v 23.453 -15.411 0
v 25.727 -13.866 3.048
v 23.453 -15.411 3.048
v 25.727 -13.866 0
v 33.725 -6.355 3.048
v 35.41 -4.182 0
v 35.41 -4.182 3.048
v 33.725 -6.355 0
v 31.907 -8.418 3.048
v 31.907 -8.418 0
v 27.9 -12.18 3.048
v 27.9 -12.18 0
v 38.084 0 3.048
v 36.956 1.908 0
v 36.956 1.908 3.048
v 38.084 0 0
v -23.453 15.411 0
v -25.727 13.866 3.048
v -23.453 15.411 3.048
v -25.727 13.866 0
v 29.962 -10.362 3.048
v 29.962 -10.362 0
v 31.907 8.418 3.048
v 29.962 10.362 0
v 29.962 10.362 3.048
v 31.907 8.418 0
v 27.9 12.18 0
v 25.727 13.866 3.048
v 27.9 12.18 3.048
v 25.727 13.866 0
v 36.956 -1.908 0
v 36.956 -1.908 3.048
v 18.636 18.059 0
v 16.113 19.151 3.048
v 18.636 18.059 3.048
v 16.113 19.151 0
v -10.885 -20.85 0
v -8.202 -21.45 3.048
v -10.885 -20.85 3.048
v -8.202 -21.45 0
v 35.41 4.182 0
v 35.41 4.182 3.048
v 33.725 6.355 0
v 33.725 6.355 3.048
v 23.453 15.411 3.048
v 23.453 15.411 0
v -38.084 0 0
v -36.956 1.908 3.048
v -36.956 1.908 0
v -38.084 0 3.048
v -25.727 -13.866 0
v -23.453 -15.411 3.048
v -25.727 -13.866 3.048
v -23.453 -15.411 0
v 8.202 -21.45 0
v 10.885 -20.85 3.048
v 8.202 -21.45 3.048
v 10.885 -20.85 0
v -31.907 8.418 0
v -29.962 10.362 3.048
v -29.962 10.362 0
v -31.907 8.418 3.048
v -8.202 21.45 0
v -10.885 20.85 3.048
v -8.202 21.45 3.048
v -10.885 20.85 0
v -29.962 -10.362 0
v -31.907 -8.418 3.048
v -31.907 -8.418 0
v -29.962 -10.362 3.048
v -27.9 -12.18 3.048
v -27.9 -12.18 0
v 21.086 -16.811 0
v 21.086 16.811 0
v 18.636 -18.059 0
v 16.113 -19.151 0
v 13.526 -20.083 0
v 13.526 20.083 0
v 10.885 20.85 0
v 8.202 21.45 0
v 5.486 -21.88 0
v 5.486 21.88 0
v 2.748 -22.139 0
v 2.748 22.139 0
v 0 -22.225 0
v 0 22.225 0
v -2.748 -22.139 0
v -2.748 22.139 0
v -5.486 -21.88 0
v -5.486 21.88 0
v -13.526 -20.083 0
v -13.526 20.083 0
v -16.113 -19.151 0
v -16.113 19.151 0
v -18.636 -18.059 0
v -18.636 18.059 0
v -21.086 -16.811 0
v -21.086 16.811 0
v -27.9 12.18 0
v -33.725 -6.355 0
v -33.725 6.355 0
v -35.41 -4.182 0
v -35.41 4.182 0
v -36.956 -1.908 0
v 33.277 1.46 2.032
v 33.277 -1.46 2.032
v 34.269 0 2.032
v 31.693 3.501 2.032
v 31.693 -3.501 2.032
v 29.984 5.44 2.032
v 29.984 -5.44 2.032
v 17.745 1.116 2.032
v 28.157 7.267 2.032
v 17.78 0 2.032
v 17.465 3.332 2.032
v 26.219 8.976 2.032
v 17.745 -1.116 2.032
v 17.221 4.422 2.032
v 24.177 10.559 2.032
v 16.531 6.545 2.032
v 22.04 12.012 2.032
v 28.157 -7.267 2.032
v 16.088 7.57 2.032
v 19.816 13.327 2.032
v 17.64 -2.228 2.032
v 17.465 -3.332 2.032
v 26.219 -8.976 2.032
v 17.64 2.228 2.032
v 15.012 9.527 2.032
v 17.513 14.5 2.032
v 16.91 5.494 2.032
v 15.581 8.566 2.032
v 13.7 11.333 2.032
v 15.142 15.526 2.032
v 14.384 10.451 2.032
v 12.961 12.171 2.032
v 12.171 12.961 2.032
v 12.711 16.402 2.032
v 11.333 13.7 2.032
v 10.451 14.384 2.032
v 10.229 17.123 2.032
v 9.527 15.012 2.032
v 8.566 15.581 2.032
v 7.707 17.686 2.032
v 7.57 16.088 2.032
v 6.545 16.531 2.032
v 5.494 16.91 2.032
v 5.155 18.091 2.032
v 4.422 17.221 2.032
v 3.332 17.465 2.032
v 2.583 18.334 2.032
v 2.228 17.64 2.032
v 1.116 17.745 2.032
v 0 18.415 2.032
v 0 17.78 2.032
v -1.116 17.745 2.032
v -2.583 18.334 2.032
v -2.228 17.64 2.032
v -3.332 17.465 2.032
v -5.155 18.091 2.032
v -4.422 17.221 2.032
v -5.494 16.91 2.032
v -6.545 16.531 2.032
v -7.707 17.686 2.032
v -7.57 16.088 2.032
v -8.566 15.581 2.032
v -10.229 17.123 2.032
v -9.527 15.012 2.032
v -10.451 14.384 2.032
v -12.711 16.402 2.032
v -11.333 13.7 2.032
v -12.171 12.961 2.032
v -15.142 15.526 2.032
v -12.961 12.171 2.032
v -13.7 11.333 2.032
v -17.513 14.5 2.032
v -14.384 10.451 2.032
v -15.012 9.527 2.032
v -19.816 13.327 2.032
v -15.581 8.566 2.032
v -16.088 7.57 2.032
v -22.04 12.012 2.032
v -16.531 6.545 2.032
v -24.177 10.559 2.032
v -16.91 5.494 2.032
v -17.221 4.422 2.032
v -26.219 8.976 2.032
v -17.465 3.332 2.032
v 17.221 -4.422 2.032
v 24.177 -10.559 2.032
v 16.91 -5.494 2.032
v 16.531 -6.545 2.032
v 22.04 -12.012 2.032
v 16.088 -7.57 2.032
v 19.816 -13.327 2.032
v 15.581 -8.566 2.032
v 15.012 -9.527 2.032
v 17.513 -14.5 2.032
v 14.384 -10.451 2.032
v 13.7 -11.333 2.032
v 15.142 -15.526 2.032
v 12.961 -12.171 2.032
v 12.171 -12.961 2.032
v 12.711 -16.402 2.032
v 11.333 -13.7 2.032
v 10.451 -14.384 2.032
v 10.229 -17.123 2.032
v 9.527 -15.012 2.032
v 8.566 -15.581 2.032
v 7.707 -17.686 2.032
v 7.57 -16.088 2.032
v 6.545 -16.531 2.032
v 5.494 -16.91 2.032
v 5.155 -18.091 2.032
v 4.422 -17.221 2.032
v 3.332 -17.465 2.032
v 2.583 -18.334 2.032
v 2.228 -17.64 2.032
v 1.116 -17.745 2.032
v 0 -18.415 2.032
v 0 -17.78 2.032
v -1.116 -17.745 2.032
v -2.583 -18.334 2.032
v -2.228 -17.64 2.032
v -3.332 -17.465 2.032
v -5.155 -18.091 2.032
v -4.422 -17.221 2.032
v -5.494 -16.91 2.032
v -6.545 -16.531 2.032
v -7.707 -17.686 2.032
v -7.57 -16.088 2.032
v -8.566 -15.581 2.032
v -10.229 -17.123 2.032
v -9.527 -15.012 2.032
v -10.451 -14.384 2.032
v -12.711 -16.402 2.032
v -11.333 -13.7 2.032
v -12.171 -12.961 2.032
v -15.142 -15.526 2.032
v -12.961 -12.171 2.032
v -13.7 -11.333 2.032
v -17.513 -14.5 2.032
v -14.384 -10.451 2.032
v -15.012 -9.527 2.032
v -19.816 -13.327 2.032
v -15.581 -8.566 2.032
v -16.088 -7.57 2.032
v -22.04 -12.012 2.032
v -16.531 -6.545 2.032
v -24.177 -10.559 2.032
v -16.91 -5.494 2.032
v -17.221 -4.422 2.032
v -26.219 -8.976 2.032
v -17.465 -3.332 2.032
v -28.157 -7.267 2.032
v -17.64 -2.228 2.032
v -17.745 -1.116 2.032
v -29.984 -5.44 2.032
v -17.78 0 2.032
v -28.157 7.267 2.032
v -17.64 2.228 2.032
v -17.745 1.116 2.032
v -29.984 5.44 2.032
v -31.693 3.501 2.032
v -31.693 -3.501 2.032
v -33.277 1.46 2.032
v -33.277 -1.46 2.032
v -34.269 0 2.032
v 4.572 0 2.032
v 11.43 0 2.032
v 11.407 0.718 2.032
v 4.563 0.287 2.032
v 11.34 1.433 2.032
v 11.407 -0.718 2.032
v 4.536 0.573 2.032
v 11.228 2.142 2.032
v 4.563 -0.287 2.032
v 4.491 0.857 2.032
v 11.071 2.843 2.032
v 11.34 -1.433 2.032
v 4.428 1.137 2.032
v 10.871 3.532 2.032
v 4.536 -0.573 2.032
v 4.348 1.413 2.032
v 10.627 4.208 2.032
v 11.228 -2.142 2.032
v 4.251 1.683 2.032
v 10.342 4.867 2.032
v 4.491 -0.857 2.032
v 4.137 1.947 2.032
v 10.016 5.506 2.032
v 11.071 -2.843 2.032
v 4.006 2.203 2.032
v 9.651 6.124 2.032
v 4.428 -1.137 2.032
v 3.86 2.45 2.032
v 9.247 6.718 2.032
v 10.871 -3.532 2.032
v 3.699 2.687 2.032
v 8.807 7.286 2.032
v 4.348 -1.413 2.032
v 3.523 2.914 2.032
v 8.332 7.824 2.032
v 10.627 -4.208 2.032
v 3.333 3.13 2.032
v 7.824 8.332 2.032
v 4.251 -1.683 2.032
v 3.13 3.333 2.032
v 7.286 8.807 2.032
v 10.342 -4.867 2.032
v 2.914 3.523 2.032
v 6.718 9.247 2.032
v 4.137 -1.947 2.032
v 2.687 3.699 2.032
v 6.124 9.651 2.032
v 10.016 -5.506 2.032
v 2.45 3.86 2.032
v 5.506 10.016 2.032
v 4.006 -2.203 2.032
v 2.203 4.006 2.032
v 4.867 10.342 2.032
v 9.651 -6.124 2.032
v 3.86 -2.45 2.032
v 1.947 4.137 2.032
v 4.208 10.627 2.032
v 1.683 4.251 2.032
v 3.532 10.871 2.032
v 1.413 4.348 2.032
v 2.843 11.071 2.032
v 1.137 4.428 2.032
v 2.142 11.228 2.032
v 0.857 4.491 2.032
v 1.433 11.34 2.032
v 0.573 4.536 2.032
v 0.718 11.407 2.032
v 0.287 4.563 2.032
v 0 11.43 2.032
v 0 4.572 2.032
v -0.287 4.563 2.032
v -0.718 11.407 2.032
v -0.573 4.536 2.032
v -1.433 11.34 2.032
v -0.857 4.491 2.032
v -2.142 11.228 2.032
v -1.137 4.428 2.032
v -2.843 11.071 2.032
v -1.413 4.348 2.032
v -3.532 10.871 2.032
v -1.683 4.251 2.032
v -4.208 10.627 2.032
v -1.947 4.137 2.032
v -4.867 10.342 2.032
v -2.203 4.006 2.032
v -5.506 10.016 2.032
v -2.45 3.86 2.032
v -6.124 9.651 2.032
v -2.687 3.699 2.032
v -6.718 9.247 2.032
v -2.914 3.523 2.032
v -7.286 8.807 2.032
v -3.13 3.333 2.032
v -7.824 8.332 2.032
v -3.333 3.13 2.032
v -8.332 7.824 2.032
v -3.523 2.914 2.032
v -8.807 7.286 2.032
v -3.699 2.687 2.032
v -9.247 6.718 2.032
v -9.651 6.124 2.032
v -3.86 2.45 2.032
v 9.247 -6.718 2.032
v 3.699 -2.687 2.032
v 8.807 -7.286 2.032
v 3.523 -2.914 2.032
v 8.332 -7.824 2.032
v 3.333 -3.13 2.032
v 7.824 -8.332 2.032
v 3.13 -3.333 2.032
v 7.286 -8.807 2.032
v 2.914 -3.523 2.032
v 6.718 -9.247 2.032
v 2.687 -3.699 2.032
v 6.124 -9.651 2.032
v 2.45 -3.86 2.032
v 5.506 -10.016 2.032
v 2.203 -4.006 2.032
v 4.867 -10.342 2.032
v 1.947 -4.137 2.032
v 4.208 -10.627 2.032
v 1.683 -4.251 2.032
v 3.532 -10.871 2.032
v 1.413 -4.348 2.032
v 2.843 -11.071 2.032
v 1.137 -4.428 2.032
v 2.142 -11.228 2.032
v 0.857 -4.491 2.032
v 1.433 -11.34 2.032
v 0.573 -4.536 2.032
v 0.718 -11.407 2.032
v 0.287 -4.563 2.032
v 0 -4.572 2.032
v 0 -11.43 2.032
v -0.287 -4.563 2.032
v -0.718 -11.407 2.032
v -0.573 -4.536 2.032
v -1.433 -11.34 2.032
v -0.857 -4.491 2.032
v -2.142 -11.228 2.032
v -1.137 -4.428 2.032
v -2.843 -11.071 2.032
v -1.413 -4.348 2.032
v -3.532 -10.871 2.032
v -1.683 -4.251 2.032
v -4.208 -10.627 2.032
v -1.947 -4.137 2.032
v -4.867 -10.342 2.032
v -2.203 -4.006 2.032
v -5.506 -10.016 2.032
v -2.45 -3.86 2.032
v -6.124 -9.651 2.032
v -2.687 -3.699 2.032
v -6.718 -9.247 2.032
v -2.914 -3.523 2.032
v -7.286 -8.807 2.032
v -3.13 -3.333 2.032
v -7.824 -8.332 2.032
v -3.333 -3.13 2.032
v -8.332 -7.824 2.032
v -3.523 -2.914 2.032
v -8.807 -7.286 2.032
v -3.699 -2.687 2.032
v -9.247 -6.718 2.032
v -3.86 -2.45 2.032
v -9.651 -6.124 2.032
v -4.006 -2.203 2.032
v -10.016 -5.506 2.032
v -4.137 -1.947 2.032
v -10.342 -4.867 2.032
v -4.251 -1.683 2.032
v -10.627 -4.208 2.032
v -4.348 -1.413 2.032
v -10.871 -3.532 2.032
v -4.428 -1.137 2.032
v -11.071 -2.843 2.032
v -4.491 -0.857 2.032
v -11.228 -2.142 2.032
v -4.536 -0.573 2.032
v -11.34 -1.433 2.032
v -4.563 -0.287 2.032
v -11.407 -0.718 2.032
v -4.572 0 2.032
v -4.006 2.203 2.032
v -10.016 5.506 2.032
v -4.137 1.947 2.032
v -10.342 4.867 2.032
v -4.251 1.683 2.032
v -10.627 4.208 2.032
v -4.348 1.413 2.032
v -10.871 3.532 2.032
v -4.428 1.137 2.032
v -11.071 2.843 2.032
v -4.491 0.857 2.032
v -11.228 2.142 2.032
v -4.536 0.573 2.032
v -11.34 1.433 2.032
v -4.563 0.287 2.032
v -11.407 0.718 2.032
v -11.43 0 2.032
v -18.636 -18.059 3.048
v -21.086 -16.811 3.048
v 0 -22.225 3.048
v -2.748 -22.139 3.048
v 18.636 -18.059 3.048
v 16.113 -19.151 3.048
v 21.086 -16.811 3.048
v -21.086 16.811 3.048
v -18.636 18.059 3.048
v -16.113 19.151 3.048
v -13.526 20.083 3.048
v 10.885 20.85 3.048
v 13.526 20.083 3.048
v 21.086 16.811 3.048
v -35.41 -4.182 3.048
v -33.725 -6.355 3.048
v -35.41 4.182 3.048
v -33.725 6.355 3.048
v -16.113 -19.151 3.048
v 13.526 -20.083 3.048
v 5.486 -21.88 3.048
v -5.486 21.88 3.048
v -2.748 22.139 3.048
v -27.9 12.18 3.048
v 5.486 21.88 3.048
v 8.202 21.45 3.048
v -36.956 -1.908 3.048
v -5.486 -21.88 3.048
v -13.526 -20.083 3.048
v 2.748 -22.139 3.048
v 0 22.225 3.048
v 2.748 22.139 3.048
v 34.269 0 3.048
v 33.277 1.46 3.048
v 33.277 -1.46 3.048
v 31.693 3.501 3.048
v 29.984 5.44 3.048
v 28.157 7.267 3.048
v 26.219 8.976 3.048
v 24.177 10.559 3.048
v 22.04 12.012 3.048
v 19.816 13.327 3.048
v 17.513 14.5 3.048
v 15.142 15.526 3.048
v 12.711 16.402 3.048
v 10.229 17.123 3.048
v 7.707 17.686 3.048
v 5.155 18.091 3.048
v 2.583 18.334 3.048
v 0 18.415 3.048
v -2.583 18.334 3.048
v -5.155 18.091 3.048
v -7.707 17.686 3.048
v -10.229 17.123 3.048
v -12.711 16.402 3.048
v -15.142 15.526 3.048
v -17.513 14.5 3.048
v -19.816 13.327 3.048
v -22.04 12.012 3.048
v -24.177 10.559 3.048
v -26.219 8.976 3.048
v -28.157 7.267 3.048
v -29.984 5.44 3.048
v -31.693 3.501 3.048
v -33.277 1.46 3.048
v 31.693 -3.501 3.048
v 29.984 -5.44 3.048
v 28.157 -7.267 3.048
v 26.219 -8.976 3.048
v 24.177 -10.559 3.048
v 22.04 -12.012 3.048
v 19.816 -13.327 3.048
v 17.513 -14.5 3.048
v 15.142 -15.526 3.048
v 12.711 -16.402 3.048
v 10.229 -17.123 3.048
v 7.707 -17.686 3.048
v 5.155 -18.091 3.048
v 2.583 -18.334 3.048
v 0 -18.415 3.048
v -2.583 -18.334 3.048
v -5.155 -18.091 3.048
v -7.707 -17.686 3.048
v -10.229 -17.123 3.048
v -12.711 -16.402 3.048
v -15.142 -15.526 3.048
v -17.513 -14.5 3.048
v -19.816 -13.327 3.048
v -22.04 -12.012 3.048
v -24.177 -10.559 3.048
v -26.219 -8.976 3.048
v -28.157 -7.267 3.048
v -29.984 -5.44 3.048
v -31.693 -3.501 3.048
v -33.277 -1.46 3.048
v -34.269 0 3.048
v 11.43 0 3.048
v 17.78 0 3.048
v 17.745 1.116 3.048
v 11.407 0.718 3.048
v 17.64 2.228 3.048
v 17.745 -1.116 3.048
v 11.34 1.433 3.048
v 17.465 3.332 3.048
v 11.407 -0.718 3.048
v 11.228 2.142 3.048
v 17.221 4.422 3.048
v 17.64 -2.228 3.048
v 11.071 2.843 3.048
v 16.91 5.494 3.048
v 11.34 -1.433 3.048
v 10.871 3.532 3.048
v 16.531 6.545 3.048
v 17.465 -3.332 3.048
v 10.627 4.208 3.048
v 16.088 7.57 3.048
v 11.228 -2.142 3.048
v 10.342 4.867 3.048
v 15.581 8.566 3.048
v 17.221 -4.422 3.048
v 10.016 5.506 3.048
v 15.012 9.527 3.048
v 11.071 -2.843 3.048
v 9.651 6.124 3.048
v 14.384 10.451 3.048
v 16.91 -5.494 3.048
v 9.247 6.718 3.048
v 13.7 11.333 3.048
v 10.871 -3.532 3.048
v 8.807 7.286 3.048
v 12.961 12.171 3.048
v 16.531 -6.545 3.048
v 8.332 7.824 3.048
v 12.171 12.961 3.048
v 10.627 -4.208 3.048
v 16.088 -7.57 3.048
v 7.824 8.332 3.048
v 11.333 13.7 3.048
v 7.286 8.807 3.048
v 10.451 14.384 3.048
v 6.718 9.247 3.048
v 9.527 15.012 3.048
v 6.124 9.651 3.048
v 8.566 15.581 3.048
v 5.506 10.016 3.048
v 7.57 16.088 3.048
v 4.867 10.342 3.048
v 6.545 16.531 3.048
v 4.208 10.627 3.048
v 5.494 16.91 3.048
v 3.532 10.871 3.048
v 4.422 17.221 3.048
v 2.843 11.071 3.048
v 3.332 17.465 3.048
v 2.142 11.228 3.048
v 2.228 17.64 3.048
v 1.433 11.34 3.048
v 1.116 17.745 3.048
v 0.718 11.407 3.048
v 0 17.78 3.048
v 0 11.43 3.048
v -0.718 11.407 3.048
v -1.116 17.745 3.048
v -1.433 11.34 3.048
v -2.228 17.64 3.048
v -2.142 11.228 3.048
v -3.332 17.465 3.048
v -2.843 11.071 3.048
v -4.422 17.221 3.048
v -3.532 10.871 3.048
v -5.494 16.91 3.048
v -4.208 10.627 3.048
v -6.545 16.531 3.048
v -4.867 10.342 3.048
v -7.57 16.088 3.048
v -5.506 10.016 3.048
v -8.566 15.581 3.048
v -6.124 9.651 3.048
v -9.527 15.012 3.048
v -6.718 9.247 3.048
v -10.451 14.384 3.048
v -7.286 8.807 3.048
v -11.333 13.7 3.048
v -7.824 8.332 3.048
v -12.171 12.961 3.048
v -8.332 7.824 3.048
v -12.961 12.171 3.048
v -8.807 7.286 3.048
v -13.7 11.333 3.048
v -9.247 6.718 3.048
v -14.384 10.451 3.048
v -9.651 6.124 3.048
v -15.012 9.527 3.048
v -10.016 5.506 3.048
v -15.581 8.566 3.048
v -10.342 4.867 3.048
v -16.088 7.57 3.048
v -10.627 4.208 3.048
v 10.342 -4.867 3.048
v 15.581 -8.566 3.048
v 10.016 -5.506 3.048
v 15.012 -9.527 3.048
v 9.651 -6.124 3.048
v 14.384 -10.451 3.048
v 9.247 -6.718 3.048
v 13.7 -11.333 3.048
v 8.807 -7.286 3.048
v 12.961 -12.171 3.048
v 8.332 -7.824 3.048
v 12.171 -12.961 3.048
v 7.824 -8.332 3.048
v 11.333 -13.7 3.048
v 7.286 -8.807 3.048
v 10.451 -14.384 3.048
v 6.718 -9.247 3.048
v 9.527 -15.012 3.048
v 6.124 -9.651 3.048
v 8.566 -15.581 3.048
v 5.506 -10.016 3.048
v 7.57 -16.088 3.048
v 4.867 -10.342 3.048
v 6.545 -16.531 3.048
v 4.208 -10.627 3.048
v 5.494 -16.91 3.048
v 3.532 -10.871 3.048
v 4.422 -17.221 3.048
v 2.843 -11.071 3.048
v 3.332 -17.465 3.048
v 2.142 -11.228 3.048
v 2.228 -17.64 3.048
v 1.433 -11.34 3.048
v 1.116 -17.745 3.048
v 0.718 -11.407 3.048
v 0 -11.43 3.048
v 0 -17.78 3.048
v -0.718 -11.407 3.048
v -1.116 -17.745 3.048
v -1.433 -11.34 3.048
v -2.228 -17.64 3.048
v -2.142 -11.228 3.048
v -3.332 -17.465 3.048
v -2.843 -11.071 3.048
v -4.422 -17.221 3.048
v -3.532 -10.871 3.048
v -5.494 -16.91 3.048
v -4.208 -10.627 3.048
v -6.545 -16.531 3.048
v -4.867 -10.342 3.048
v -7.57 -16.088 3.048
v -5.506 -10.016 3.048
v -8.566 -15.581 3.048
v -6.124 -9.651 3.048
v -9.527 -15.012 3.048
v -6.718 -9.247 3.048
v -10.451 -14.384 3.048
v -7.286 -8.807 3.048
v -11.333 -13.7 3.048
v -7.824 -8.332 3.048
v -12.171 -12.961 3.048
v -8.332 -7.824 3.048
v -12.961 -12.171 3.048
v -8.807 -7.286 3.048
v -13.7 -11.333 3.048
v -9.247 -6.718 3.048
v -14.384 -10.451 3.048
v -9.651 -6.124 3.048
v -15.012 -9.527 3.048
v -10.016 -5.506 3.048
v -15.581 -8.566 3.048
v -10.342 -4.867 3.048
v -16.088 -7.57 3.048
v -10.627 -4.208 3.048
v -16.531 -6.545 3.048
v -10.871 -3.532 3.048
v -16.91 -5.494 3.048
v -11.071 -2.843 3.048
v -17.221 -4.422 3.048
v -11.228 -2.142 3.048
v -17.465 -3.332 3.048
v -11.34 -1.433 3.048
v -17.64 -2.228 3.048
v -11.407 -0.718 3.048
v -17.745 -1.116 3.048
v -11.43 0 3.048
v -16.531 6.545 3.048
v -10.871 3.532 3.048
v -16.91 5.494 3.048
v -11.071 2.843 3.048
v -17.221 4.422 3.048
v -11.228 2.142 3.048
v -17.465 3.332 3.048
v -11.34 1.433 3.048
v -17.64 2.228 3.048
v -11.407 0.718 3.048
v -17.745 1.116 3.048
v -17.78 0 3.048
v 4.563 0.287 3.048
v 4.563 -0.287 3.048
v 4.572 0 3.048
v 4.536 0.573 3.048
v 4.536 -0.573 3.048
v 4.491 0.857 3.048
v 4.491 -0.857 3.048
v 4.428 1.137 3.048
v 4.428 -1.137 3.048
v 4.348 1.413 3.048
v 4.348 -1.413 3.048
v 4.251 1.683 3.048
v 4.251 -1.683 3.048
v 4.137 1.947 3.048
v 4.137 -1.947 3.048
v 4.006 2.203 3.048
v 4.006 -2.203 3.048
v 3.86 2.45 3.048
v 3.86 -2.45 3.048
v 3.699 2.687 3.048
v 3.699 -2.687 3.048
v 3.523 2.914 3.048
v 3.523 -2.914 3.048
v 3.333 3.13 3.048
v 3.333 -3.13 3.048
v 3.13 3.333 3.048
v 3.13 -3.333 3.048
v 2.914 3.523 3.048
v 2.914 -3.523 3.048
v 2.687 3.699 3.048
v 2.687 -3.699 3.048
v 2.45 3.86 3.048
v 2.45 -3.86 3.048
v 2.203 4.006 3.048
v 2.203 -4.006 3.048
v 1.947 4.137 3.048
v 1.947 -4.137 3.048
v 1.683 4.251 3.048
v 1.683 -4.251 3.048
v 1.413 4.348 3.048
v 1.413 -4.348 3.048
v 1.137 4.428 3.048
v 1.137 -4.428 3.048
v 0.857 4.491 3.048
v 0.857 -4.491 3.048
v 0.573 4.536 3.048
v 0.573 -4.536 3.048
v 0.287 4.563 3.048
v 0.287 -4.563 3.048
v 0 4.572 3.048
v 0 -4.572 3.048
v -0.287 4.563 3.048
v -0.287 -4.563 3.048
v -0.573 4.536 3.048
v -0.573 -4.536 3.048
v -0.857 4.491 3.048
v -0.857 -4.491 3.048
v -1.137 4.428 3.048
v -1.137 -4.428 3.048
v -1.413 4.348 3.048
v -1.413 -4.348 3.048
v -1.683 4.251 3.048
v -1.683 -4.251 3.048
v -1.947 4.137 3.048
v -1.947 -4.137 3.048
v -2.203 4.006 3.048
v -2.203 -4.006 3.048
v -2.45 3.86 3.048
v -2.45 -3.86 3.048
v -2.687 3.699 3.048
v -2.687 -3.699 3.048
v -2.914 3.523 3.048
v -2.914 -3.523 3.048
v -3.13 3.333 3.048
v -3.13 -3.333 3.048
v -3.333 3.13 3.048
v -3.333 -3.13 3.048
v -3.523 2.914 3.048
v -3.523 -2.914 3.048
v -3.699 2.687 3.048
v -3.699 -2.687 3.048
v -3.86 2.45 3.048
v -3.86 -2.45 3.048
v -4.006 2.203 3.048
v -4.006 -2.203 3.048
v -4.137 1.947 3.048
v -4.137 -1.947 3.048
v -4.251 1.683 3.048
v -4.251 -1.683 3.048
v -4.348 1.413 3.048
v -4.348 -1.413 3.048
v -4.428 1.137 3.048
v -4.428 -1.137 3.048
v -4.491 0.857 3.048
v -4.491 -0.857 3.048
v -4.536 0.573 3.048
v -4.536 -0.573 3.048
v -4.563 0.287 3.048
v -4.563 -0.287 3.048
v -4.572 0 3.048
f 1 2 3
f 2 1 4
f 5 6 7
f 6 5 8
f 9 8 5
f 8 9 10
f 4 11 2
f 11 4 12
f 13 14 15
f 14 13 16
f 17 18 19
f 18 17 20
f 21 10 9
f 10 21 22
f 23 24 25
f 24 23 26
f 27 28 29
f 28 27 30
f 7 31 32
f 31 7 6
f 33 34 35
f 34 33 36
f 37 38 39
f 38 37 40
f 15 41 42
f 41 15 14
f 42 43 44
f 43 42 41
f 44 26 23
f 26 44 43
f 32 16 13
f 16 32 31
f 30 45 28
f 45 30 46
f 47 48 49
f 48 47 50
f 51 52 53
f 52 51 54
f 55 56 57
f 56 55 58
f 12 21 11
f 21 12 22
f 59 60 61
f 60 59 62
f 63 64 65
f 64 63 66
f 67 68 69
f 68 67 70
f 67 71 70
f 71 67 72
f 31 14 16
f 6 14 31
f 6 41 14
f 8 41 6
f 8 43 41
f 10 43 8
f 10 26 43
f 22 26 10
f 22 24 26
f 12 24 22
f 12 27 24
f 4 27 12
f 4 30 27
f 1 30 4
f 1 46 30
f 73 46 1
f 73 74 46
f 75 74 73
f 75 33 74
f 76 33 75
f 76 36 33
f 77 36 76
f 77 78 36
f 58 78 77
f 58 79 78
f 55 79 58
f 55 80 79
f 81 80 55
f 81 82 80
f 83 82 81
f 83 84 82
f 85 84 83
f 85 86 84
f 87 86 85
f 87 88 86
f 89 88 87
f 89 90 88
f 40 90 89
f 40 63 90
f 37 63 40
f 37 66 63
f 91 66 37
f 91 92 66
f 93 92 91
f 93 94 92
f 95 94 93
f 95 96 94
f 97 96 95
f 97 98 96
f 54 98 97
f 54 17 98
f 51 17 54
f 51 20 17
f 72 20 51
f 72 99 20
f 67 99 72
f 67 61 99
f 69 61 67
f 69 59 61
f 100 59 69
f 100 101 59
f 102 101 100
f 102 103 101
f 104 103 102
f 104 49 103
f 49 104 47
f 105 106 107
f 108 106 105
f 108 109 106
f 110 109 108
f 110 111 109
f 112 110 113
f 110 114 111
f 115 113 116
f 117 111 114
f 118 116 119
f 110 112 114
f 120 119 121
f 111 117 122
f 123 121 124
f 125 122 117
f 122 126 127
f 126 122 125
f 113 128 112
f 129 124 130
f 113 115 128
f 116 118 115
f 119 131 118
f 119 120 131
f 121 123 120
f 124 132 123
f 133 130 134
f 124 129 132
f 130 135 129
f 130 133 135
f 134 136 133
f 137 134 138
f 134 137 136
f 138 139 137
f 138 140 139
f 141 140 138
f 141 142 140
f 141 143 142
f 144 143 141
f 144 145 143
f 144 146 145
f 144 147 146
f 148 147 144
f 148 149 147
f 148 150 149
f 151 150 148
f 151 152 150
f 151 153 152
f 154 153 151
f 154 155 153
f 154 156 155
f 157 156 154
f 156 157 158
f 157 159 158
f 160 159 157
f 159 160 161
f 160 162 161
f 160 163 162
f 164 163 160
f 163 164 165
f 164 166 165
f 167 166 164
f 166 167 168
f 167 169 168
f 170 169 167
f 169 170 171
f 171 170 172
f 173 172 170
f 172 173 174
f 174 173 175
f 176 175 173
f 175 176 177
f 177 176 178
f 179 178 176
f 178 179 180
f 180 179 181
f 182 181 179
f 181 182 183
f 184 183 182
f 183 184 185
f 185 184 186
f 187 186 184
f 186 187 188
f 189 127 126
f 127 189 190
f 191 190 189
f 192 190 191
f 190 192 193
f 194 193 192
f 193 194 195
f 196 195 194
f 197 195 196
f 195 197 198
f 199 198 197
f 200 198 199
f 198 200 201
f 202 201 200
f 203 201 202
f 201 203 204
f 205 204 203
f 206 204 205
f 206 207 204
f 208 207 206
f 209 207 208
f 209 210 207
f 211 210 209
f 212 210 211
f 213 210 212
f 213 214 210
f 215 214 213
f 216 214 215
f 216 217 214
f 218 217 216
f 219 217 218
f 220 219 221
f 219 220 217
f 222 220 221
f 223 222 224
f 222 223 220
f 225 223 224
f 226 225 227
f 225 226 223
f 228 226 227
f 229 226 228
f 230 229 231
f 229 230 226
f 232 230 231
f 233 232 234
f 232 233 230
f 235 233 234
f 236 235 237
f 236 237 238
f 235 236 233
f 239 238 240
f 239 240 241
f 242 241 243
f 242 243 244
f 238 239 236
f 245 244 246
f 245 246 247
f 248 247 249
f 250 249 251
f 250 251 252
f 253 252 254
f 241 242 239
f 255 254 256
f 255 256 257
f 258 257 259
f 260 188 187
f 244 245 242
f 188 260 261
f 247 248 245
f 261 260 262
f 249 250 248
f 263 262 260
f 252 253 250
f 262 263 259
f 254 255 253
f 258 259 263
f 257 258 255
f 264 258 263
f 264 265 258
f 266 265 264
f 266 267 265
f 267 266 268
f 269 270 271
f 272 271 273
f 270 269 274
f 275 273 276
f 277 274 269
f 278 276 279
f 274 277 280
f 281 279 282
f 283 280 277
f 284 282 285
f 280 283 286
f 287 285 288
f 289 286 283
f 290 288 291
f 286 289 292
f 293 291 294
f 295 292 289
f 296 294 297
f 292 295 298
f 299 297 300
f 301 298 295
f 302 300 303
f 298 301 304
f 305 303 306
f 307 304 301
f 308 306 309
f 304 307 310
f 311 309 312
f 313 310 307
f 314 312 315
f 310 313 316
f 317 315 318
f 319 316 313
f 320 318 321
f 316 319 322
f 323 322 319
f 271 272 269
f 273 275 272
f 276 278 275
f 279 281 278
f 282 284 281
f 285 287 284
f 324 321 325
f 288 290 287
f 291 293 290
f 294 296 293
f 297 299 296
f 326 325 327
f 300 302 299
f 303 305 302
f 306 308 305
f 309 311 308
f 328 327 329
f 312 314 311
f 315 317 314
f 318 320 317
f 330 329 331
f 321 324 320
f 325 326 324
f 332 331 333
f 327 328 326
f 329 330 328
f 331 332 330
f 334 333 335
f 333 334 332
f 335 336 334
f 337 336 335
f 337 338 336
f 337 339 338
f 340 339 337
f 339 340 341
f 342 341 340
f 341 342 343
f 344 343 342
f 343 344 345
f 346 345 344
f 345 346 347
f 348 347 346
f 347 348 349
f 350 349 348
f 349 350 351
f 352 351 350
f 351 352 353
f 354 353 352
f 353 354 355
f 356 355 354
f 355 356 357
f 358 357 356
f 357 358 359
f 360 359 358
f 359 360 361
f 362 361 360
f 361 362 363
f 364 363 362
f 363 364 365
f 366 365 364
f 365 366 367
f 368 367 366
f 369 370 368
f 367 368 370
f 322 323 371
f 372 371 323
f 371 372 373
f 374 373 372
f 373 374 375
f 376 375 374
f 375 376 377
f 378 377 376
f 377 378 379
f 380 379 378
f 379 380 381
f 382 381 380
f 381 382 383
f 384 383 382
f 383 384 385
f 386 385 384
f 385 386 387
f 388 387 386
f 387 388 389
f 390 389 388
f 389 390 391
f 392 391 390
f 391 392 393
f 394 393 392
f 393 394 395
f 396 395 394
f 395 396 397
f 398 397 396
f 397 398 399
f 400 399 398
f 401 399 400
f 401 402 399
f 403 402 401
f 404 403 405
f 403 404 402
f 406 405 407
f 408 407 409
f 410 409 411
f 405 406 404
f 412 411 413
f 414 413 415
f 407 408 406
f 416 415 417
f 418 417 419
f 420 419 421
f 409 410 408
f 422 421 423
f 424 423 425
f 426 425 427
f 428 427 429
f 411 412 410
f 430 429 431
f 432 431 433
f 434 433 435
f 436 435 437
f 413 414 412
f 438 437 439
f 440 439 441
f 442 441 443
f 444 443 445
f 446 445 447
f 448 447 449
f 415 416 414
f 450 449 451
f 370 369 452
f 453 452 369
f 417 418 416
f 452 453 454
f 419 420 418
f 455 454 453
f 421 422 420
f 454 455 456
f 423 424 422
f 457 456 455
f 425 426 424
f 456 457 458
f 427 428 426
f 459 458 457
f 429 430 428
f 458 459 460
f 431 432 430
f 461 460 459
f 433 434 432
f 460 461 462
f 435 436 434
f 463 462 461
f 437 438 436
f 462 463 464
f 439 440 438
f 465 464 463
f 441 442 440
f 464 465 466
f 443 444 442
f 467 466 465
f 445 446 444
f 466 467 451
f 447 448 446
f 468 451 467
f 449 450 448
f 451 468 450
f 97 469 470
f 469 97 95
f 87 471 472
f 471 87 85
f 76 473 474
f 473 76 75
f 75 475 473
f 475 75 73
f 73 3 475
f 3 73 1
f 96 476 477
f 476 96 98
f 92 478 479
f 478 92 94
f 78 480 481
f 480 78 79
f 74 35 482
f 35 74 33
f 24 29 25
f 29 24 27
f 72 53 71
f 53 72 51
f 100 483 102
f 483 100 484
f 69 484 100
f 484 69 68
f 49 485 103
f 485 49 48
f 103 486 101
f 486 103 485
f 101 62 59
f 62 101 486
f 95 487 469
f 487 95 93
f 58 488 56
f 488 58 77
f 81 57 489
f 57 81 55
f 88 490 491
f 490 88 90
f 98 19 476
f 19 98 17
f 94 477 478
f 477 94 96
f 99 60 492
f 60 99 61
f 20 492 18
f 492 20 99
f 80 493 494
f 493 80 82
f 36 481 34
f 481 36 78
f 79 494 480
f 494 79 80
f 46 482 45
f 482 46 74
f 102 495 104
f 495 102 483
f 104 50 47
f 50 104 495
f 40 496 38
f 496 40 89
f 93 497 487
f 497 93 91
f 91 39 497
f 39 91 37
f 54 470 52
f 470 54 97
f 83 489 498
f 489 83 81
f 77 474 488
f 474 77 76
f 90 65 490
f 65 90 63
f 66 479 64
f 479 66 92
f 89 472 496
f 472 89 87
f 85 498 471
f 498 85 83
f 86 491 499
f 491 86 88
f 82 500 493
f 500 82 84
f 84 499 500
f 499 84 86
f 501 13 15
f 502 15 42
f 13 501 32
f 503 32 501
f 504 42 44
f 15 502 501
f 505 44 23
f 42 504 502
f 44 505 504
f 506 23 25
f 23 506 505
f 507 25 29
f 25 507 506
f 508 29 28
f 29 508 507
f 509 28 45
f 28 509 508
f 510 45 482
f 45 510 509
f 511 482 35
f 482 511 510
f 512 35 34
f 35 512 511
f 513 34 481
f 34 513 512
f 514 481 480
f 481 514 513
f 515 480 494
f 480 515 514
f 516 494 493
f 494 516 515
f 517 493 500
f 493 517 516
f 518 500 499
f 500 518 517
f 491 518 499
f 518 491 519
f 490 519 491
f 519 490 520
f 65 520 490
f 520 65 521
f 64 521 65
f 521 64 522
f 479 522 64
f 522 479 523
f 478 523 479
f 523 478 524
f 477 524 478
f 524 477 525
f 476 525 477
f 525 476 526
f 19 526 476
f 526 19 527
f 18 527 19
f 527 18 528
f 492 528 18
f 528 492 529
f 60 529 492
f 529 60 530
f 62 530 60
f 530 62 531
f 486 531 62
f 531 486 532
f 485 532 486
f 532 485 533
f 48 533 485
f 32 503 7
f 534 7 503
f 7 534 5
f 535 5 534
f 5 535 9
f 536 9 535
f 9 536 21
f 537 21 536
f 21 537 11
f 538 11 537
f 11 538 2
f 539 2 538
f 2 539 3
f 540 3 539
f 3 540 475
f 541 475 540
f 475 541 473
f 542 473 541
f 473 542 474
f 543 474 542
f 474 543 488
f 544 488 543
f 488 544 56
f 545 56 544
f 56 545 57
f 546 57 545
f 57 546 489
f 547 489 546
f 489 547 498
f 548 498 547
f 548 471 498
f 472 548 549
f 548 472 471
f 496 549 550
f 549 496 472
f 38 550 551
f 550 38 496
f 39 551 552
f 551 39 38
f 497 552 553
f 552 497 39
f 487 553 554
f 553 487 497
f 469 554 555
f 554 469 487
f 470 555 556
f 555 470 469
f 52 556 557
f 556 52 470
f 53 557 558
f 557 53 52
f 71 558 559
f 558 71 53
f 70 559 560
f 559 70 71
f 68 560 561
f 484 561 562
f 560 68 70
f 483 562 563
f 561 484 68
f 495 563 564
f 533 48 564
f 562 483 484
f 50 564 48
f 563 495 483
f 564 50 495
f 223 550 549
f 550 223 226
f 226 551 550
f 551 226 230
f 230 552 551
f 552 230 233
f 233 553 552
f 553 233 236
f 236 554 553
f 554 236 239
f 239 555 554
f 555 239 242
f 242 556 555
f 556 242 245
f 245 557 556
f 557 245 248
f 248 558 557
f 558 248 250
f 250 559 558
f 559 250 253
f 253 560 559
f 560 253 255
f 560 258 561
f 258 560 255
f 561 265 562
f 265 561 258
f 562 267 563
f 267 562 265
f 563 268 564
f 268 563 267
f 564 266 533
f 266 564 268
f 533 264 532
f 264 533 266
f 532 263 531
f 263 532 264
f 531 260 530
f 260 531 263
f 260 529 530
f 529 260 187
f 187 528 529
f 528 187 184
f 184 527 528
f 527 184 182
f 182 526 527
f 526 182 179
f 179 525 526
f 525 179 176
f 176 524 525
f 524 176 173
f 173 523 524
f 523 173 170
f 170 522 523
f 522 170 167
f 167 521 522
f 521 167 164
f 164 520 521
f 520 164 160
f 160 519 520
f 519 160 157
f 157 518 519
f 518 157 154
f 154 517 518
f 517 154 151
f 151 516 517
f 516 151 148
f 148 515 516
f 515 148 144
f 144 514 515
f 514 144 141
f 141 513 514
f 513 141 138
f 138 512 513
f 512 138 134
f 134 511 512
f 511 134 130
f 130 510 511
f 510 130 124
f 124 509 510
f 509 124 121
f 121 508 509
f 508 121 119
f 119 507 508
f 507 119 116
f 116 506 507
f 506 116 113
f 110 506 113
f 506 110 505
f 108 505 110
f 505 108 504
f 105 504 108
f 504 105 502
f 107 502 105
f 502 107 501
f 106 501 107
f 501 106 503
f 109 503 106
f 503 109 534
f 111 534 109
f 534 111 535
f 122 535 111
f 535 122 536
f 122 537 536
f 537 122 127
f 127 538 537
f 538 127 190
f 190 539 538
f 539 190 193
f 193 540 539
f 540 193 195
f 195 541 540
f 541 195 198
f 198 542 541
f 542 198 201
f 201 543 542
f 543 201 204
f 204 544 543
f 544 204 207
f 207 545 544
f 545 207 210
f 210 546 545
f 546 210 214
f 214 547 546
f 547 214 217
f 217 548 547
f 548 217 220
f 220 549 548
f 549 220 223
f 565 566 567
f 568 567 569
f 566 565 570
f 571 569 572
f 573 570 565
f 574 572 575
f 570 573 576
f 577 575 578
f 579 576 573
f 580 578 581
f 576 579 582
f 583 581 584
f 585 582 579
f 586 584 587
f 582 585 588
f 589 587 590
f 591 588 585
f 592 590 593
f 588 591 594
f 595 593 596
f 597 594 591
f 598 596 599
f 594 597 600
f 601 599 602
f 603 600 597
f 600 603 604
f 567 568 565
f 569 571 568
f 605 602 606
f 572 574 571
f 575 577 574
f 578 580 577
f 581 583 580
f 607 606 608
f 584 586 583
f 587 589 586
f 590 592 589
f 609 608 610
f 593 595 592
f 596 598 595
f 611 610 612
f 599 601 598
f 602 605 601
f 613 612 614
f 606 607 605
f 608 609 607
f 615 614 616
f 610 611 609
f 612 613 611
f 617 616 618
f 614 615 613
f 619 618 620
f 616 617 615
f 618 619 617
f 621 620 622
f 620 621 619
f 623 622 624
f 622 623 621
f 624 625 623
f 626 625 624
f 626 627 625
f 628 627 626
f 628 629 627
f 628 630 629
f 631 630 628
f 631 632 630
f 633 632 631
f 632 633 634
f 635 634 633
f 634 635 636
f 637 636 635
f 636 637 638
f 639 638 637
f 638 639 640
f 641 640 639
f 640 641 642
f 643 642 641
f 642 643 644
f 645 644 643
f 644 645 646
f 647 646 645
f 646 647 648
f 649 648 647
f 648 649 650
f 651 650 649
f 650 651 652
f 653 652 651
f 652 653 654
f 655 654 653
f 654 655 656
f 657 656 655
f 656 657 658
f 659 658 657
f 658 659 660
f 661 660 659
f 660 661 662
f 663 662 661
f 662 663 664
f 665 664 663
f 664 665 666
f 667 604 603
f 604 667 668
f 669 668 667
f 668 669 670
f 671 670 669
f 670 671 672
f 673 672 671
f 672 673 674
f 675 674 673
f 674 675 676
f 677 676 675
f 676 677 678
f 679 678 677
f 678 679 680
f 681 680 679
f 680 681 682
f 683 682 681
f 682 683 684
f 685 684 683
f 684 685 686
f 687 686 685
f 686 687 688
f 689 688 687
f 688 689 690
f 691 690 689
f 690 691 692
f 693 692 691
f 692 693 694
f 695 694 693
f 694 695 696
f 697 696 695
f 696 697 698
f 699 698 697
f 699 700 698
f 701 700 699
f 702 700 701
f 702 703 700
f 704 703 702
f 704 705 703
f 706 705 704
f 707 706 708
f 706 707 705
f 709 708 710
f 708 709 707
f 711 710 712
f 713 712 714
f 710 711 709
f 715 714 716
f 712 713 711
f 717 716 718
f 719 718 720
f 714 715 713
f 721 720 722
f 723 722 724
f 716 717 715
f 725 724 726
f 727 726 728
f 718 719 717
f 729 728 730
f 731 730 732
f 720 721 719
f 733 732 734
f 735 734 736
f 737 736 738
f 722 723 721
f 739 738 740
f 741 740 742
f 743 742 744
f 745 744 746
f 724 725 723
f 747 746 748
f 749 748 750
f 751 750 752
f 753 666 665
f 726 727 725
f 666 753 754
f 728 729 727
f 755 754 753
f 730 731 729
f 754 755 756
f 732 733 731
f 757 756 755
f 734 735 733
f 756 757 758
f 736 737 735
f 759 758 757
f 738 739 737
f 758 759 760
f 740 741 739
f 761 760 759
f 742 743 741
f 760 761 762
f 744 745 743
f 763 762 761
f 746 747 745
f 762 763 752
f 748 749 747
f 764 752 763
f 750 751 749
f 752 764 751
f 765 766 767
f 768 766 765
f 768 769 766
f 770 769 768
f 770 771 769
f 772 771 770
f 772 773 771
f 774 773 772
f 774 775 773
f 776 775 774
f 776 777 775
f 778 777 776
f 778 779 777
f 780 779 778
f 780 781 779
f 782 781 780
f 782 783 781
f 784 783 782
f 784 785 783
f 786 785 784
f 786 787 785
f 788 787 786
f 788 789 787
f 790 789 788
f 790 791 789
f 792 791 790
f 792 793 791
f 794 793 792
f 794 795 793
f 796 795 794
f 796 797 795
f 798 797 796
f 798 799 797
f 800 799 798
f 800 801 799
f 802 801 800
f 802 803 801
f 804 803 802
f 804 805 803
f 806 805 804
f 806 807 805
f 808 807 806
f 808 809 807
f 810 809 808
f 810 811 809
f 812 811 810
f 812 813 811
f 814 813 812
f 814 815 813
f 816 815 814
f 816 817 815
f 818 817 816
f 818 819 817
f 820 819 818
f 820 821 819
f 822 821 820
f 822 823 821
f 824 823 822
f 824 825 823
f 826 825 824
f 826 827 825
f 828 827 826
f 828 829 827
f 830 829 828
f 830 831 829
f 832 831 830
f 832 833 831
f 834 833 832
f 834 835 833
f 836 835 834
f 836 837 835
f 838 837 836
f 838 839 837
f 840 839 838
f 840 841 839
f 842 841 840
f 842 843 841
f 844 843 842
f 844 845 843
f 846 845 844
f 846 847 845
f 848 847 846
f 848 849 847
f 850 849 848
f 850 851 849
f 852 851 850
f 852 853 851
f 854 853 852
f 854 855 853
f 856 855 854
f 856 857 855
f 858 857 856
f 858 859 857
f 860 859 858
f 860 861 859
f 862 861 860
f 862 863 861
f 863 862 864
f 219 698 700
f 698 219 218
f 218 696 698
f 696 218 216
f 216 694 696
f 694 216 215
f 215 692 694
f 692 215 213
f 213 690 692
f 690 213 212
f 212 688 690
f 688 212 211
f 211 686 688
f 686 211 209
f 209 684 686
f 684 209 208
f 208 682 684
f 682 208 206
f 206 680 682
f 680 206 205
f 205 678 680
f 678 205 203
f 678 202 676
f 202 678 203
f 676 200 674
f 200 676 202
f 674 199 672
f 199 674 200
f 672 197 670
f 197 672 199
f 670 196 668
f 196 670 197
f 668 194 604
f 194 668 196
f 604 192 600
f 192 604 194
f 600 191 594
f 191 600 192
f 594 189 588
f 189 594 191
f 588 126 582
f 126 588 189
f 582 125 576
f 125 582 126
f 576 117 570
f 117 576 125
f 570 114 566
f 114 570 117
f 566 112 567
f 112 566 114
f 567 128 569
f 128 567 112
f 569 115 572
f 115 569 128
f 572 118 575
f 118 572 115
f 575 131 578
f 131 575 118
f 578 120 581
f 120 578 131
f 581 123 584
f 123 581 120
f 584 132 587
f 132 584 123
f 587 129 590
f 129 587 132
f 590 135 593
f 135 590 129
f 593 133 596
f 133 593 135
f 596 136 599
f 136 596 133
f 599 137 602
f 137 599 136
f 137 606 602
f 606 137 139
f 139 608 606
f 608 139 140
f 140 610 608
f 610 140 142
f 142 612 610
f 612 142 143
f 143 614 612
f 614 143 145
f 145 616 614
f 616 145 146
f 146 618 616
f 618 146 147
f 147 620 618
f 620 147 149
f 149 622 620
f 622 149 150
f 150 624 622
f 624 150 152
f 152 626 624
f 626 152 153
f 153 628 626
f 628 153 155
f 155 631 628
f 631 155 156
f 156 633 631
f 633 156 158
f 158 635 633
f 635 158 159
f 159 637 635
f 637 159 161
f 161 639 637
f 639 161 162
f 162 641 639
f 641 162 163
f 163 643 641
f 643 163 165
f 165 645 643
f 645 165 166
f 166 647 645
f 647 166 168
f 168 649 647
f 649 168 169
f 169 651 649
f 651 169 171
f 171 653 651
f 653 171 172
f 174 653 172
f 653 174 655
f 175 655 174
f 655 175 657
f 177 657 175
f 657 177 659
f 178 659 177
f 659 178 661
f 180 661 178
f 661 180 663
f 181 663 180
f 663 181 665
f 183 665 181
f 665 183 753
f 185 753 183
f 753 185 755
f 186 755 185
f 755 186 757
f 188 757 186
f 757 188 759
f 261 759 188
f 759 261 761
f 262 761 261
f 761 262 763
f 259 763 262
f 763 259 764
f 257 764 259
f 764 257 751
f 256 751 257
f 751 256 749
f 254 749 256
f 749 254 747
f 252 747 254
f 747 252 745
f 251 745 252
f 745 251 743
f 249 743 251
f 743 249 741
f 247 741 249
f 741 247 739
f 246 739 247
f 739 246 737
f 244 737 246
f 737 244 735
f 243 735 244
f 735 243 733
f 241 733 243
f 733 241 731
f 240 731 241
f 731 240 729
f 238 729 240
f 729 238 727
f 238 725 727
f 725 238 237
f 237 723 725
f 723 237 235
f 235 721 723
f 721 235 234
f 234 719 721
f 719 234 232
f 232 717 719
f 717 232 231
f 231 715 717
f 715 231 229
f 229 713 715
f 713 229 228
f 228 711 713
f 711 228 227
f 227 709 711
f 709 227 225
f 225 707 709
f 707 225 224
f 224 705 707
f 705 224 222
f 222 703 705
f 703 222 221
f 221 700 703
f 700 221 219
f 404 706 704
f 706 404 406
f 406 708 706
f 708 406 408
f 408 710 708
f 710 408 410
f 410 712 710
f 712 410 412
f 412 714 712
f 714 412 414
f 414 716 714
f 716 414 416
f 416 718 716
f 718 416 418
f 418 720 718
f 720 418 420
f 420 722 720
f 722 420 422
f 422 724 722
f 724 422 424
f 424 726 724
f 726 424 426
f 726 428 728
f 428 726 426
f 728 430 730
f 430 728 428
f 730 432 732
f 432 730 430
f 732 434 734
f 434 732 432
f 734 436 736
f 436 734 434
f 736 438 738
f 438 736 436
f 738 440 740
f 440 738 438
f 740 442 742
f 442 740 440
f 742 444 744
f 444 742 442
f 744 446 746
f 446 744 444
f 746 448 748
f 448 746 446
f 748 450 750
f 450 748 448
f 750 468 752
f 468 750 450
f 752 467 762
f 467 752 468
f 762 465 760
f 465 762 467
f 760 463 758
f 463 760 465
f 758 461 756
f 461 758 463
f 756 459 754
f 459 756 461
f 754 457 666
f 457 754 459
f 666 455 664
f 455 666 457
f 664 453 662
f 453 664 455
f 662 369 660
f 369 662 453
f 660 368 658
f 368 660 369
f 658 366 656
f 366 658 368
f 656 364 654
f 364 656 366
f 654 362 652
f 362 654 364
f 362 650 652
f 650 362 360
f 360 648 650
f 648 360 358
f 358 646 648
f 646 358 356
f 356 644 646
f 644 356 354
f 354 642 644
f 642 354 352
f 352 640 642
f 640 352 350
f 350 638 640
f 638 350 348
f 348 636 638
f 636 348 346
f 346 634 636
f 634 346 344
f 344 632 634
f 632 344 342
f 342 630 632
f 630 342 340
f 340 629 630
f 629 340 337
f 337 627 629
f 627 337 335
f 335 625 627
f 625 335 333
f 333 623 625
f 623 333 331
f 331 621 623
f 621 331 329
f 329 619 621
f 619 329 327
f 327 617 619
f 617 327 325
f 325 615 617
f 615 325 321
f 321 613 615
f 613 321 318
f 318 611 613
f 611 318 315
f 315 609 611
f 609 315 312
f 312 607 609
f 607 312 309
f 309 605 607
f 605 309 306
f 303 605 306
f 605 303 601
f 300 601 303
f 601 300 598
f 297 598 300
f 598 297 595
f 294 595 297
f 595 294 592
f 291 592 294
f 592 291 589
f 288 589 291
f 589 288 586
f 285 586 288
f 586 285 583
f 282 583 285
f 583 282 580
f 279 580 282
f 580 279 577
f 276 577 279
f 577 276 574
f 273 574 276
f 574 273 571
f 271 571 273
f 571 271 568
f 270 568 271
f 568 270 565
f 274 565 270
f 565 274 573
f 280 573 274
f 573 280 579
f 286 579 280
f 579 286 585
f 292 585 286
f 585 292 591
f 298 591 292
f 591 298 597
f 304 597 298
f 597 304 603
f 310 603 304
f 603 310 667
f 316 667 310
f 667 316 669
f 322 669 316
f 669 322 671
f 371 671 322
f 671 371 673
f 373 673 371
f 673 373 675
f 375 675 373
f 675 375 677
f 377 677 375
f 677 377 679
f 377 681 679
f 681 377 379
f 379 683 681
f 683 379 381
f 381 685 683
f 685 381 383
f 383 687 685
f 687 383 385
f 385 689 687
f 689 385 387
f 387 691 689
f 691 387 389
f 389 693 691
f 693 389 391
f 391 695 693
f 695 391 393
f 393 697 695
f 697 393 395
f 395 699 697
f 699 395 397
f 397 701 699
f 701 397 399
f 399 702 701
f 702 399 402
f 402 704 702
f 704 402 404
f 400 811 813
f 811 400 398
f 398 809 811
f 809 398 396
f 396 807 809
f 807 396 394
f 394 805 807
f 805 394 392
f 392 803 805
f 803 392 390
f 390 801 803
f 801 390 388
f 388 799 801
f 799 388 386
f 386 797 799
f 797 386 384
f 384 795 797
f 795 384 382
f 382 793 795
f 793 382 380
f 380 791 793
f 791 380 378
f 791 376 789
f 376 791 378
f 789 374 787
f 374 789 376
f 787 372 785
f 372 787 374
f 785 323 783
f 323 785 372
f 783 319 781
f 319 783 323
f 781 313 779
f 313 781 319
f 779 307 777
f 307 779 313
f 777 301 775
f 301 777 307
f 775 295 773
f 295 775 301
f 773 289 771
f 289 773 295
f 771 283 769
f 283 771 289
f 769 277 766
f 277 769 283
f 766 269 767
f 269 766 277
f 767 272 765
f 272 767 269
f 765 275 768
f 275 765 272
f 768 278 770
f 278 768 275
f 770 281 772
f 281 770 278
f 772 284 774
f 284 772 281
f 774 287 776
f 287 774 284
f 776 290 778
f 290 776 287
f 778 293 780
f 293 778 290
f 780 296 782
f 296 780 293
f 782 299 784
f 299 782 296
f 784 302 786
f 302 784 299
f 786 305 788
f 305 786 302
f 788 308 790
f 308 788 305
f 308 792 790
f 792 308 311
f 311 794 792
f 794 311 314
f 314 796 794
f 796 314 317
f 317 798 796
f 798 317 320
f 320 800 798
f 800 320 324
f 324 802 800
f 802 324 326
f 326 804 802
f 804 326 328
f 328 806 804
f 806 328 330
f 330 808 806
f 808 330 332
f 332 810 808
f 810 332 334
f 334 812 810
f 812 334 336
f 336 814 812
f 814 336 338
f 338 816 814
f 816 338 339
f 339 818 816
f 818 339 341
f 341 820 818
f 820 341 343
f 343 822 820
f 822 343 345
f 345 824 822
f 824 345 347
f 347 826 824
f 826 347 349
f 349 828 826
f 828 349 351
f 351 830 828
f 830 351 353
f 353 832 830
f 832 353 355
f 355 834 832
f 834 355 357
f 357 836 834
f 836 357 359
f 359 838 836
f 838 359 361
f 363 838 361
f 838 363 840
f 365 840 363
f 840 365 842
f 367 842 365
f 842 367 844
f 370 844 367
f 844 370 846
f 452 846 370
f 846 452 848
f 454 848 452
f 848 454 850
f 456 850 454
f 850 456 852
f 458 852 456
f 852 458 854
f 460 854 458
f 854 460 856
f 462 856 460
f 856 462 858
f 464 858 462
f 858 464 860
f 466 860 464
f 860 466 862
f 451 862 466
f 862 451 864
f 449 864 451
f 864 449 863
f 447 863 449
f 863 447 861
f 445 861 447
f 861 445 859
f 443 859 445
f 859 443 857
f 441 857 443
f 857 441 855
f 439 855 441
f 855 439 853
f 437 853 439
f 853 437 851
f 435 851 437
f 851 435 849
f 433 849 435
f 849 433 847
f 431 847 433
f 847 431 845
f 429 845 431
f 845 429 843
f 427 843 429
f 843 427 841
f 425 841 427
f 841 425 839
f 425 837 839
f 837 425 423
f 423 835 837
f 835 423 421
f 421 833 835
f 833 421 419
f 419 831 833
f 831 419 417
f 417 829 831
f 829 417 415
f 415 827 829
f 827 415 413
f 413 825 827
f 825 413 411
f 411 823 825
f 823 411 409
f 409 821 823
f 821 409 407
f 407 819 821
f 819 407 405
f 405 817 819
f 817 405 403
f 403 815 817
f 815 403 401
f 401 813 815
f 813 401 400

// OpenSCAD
// All-Seeing Eye Symbol
// Version: 1.0
// Description: A minimalistic "lidded" eye symbol with sharp corners (Vesica Piscis geometry).

/* [Global Dimensions] */
INCH = 25.4;

eye_width = 3.0 * INCH;
eye_height = 1.75 * INCH;

base_thickness = 0.08 * INCH;  // The back plate
lid_thickness = 0.12 * INCH;   // The rim/lids
pupil_thickness = 0.12 * INCH; // The pupil

pupil_diameter = 0.9 * INCH;
iris_diameter = 1.4 * INCH;    // Optional slight detail

/* [Rendering] */
$fn = 100;

module almond_shape(w, h) {
    // To get the sharp corners (Vesica Piscis style), we intersect two large offset circles.
    // We adjust the offset and radius to approximate the bounding box w x h.
    
    // Mathematical approximation for the "Lens" shape:
    // We want the intersection to be width 'w' and height 'h'.
    // Radius of curvature 'R' = (w^2 + h^2) / (4h)
    // Vertical Offset of centers 'y0' = R - h/2
    
    R = (pow(w, 2) + pow(h, 2)) / (4 * h);
    y_offset = R - h/2;

    intersection() {
        translate([0, -y_offset, 0]) circle(r=R);
        translate([0, y_offset, 0]) circle(r=R);
    }
}

module eye_symbol_main() {
    
    // 1. Base Plate (Sclera)
    color("white") 
    linear_extrude(base_thickness) {
        almond_shape(eye_width, eye_height);
    }

    // 2. Eyelids (Rim)
    // We create a rim by subtracting a slightly smaller almond from the main one.
    rim_width = 0.15 * INCH;
    
    color("gray")
    translate([0, 0, base_thickness])
    linear_extrude(lid_thickness - base_thickness) {
        difference() {
            almond_shape(eye_width, eye_height);
            almond_shape(eye_width - rim_width*2, eye_height - rim_width*2);
        }
    }

    // 3. Pupil & Iris
    // Independent central cylinder
    color("black")
    translate([0, 0, base_thickness])
    linear_extrude(pupil_thickness - base_thickness) {
        // Outer Iris Ring (optional, adds the "stare" effect)
        difference() {
            circle(d=iris_diameter);
            circle(d=pupil_diameter);
        }
        
        // Inner Pupil
        circle(d=pupil_diameter * 0.4); 
    }
}

eye_symbol_main();
